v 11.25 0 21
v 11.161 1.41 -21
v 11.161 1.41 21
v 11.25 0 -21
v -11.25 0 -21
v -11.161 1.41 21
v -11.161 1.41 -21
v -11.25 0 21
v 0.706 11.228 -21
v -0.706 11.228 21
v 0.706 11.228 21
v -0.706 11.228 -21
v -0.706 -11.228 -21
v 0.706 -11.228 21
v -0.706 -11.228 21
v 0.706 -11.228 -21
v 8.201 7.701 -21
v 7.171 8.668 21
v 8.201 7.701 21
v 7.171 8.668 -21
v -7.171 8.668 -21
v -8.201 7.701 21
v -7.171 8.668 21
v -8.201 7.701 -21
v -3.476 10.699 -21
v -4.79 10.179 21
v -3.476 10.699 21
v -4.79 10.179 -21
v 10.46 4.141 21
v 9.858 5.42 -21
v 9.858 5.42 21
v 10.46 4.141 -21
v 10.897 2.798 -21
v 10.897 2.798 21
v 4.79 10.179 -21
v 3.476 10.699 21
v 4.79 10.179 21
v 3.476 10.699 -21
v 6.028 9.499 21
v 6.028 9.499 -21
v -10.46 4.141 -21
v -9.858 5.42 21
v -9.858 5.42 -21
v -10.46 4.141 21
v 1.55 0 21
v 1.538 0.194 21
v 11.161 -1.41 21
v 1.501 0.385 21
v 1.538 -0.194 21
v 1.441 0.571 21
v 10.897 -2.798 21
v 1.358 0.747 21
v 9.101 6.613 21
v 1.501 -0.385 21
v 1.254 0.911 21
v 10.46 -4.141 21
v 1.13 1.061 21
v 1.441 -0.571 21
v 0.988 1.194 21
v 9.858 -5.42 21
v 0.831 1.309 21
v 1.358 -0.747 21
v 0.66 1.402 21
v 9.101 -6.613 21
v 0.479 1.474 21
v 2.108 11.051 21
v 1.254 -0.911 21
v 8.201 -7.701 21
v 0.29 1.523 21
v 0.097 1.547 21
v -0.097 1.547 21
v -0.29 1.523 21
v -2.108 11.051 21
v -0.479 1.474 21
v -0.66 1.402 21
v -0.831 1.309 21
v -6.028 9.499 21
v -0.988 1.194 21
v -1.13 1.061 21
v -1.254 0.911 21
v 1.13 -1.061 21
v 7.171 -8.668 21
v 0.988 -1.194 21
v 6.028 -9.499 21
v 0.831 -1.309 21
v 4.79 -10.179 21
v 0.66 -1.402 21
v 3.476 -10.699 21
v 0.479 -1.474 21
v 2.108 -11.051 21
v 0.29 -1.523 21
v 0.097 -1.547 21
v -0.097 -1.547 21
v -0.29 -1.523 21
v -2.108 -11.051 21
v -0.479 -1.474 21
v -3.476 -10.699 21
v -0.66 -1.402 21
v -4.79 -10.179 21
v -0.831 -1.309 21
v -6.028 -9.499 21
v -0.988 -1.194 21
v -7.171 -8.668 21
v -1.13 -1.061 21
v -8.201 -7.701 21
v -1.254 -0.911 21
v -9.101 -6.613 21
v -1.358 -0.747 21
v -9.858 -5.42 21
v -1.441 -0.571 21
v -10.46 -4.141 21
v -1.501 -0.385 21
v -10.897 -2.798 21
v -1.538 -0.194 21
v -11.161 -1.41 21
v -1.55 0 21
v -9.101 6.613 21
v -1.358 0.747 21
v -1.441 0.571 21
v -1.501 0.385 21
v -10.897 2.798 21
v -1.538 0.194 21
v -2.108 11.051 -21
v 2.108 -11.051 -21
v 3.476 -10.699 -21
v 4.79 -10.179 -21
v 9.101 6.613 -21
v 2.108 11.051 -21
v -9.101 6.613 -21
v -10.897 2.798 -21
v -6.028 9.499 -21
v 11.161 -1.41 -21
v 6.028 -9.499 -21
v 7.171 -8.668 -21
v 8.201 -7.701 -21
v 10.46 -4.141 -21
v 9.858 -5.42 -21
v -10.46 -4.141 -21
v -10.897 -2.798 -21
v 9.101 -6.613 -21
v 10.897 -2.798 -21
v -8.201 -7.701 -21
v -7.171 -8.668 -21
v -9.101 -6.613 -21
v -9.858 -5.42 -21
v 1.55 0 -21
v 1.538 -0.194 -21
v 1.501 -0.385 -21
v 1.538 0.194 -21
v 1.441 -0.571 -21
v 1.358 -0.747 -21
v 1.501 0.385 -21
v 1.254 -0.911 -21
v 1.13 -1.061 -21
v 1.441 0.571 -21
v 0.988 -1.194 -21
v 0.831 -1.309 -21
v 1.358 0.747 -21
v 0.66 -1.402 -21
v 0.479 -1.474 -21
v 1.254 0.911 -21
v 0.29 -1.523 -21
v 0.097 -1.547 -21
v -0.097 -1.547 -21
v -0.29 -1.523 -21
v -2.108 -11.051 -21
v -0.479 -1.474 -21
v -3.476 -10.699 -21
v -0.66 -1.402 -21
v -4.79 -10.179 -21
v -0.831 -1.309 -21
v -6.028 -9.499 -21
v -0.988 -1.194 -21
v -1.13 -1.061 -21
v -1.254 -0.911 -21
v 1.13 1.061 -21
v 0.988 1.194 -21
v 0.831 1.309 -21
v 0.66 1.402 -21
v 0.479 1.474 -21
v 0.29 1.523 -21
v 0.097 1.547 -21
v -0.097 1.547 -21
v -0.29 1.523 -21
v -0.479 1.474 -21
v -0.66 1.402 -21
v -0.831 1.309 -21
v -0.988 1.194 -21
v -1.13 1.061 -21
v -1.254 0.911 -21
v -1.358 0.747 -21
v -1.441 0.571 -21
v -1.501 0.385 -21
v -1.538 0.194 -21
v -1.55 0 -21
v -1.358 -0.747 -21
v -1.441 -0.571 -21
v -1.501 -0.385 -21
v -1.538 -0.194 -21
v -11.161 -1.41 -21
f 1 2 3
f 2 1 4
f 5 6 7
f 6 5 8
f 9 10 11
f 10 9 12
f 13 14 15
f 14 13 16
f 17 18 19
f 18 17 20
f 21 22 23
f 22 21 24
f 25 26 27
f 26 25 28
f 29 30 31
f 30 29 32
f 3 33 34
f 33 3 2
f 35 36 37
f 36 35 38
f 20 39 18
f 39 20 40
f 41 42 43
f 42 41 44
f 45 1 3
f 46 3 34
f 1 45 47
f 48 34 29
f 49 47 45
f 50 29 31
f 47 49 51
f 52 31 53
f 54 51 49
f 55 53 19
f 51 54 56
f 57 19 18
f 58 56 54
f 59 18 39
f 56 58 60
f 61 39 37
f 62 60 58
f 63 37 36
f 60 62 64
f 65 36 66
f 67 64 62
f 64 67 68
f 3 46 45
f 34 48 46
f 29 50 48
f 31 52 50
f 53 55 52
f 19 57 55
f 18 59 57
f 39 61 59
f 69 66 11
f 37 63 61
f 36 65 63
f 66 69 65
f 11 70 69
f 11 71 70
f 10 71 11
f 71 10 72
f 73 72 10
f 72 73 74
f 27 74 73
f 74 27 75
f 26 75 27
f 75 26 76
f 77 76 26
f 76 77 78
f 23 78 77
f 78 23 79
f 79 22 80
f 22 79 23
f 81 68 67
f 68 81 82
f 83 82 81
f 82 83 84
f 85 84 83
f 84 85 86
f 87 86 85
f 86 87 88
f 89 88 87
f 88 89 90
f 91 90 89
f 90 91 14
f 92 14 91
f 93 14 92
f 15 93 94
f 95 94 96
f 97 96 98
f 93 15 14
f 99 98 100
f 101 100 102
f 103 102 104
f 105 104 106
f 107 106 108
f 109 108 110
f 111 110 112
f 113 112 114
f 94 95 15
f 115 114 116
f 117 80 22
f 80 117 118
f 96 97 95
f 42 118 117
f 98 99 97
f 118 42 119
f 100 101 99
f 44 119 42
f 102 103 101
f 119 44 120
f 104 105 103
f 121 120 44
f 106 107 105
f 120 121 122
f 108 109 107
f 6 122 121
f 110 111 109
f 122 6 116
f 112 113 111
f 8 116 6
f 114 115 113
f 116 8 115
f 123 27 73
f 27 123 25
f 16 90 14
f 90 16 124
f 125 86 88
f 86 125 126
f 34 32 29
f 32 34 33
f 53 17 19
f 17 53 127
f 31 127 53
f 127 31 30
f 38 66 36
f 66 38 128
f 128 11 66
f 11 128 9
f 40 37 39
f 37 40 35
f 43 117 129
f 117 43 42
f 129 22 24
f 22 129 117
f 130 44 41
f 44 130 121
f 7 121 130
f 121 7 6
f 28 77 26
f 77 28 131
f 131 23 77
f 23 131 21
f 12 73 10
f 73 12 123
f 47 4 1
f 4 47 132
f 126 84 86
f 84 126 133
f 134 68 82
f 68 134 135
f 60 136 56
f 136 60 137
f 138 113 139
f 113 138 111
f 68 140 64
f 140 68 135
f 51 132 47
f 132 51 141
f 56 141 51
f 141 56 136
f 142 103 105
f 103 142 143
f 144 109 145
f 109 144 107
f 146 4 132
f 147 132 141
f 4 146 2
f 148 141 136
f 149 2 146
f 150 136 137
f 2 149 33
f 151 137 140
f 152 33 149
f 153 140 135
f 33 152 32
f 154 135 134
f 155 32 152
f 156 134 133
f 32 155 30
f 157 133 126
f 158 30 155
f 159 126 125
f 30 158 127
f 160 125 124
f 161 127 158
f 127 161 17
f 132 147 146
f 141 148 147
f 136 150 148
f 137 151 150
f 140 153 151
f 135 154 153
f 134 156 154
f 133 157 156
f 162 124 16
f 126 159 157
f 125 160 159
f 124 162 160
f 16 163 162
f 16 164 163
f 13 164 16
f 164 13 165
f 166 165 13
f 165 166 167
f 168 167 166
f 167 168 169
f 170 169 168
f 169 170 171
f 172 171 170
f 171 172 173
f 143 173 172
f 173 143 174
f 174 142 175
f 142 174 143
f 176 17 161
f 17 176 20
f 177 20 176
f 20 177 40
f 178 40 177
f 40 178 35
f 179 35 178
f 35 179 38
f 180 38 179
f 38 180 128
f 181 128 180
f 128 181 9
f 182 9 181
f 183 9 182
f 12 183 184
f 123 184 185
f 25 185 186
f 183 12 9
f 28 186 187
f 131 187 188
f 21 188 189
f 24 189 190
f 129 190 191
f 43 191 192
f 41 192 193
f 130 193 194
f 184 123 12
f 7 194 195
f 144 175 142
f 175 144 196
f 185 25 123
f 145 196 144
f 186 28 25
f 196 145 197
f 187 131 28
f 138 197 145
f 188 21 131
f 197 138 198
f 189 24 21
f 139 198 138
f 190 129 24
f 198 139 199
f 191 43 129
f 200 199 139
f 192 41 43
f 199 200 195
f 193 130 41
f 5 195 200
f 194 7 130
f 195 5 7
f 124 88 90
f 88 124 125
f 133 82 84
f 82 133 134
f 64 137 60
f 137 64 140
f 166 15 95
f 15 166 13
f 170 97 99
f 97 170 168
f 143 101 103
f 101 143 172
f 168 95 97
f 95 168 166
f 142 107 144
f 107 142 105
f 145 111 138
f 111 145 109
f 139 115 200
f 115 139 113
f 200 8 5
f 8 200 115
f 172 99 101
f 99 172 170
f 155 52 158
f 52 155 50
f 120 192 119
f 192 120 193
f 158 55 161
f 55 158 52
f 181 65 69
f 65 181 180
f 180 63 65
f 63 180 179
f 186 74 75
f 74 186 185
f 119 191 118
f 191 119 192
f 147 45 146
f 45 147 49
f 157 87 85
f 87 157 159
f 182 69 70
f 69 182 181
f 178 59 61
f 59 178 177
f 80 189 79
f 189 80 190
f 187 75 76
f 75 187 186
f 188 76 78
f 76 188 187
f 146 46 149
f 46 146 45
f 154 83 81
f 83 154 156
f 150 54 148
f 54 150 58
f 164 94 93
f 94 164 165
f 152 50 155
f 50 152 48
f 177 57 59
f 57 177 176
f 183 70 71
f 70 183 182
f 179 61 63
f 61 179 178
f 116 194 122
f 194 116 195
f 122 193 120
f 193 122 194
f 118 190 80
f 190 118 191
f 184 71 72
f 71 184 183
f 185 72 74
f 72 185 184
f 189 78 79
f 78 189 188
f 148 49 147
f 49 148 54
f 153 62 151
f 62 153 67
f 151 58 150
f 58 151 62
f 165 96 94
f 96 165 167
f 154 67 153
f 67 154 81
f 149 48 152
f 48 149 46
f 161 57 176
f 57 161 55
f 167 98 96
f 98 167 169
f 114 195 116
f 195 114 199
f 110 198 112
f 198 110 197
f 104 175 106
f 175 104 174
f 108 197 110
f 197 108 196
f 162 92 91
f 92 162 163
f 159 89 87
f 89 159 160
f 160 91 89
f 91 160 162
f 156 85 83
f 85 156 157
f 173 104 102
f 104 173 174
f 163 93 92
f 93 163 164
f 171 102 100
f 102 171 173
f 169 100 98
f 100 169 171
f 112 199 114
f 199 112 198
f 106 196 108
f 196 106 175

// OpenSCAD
$fn = 50;


difference() {
	union() {
		translate(v = [0, 0, -21.0000000000]) {
			cylinder(h = 42, r = 11.2500000000);
		}
	}
	union() {
		translate(v = [0, 0, -100.0000000000]) {
			cylinder(h = 200, r = 1.5500000000);
		}
	}
}
